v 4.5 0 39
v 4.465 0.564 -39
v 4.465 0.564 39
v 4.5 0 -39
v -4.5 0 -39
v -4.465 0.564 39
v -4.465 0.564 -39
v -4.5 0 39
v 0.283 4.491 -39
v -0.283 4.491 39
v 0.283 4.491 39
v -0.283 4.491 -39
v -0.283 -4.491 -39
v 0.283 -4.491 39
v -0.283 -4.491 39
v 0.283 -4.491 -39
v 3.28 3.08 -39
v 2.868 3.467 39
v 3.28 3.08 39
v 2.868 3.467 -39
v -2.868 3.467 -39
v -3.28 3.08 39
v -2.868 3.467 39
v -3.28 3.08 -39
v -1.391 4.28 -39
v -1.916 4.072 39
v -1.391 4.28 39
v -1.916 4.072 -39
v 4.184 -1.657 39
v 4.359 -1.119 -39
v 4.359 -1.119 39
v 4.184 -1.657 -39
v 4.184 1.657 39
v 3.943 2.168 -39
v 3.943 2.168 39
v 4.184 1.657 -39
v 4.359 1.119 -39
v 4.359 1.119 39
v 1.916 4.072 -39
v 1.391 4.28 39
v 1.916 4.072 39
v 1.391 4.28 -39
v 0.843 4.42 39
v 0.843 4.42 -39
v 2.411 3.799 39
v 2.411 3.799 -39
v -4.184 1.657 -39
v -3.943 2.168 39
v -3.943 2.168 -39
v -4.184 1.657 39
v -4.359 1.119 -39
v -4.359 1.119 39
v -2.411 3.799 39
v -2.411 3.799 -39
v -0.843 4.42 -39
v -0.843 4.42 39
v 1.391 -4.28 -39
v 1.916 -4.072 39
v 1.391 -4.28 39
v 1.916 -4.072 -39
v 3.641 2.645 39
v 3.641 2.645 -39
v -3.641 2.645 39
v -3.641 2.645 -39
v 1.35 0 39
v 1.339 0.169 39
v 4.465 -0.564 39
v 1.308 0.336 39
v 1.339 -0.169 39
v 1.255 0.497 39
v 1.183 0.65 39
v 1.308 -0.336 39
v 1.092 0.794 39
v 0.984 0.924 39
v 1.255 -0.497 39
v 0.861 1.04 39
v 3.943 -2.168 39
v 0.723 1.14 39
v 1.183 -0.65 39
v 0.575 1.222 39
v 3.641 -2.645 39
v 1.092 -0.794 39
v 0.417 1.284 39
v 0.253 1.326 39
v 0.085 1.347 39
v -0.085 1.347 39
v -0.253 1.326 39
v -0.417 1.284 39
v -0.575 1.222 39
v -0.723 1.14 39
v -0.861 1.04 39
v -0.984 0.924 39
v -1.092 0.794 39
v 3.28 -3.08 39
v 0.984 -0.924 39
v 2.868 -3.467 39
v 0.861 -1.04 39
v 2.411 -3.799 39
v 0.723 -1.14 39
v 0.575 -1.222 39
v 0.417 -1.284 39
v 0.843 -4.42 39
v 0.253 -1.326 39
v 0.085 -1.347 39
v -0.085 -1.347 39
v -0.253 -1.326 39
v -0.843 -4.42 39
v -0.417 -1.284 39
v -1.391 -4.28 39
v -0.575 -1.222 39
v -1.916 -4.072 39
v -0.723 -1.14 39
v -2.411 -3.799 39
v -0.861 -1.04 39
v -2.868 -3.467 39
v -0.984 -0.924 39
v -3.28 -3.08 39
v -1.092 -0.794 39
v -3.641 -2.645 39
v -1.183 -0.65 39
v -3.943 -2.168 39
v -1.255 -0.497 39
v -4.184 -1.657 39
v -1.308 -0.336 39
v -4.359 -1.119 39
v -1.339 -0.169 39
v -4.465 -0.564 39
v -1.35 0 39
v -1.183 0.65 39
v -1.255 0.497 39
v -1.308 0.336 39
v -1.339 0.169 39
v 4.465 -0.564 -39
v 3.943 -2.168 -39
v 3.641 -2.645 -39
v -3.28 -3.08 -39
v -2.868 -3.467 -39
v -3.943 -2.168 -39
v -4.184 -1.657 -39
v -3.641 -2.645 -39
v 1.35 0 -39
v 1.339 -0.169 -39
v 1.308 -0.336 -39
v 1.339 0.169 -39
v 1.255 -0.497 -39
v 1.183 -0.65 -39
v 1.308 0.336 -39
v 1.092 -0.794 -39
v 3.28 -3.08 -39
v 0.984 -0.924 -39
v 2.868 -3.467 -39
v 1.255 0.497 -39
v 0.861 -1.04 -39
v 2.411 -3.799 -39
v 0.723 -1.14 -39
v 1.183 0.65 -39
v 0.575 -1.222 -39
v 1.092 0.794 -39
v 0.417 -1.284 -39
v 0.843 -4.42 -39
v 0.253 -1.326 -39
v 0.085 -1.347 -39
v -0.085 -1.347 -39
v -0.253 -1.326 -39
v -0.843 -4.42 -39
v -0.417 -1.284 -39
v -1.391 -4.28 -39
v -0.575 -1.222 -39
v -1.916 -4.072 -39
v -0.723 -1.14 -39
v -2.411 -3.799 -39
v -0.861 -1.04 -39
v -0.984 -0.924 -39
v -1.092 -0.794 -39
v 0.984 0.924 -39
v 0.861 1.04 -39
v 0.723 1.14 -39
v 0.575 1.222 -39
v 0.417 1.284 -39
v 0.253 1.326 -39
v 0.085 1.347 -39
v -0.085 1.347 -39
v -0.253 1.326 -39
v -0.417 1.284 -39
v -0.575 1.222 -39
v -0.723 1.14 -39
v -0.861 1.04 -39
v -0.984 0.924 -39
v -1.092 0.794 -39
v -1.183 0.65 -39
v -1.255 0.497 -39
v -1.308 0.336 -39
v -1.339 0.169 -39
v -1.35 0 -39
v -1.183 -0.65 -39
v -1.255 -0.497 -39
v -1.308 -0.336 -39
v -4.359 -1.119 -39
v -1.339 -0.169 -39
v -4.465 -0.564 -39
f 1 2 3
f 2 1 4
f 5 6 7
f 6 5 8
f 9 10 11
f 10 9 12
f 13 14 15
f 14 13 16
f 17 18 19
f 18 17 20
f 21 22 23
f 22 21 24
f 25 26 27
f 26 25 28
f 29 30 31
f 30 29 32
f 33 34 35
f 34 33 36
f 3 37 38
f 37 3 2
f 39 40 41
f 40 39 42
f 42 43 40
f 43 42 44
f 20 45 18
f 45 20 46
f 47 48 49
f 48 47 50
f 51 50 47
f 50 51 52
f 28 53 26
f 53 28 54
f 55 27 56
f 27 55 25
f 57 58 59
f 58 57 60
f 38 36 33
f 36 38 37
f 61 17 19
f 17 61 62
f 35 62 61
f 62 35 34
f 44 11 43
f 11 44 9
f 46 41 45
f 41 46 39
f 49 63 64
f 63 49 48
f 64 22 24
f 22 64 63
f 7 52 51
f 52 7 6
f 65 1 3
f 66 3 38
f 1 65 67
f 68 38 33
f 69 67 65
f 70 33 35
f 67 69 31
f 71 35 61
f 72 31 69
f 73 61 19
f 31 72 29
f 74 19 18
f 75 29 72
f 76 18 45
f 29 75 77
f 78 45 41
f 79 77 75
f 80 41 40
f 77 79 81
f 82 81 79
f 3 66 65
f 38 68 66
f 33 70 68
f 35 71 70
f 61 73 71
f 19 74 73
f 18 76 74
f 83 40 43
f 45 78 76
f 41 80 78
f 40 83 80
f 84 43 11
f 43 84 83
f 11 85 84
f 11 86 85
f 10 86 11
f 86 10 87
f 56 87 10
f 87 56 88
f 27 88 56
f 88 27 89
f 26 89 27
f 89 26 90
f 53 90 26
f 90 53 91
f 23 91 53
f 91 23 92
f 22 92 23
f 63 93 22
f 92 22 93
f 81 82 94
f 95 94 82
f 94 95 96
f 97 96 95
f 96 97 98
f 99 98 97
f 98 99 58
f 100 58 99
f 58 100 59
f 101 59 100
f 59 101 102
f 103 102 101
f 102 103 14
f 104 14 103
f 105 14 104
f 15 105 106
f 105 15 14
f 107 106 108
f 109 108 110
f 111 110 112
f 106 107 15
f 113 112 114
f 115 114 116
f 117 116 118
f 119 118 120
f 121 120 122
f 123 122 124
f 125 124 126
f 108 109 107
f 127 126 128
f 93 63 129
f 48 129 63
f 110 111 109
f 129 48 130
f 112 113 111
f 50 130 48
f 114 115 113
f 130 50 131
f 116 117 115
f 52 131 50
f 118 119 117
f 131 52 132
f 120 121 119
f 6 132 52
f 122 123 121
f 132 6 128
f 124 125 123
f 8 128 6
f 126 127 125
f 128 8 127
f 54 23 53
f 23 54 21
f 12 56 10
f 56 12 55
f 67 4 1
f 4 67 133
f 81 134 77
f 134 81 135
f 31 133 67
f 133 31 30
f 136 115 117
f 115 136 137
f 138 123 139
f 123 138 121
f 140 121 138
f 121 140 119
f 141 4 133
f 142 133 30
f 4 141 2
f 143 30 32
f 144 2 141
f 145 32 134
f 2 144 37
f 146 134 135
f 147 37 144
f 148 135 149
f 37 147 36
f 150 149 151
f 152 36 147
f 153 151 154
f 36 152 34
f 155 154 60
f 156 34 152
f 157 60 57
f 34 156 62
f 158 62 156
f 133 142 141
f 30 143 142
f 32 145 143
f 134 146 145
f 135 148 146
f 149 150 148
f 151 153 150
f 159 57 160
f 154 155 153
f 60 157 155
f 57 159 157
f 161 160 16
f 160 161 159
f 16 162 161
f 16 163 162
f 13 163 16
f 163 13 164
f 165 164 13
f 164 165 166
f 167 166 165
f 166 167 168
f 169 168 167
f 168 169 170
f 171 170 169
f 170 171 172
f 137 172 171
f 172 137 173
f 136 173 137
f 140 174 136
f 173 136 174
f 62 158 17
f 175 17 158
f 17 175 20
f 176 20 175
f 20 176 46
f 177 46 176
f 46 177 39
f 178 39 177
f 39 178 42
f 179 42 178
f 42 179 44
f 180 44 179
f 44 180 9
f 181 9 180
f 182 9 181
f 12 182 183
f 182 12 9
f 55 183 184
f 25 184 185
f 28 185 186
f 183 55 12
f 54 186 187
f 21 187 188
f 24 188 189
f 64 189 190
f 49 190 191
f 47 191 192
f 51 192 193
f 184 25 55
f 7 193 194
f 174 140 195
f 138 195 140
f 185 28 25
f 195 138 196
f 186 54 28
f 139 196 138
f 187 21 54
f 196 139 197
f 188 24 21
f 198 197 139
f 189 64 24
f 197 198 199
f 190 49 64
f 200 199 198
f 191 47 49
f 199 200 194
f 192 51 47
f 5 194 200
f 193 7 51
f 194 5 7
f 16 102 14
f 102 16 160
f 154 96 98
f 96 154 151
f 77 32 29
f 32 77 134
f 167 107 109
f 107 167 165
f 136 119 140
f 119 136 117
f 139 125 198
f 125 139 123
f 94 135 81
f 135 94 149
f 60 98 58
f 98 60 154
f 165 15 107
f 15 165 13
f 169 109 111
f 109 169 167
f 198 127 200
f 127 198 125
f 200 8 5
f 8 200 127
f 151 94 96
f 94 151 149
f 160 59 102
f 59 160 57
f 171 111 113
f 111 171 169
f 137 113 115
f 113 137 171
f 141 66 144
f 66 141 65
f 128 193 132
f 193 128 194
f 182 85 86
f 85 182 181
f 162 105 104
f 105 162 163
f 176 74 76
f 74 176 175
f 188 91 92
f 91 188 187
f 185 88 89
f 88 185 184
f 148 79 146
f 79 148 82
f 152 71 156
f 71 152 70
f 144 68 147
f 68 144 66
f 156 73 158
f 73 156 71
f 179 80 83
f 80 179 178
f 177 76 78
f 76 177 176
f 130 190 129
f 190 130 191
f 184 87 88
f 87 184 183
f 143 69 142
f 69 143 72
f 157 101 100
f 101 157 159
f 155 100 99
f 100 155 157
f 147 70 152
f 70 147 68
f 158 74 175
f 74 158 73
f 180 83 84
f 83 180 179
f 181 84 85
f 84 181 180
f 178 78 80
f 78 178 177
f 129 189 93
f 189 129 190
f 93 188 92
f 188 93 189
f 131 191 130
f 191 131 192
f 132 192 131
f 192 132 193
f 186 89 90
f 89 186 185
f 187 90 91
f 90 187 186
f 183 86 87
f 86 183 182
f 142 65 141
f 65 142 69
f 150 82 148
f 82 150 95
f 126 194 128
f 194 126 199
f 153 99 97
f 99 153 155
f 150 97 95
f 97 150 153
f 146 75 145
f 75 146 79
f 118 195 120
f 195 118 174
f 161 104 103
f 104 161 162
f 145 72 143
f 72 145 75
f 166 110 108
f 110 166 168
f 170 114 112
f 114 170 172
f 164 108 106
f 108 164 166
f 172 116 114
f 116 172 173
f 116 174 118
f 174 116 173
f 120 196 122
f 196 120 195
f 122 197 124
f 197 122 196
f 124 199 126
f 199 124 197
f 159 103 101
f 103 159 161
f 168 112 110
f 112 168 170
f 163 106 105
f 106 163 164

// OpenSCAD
$fn = 50;


difference() {
	union() {
		translate(v = [0, 0, -39.0000000000]) {
			cylinder(h = 78, r = 4.5000000000);
		}
	}
	union() {
		translate(v = [0, 0, -100.0000000000]) {
			cylinder(h = 200, r = 1.3500000000);
		}
	}
}
